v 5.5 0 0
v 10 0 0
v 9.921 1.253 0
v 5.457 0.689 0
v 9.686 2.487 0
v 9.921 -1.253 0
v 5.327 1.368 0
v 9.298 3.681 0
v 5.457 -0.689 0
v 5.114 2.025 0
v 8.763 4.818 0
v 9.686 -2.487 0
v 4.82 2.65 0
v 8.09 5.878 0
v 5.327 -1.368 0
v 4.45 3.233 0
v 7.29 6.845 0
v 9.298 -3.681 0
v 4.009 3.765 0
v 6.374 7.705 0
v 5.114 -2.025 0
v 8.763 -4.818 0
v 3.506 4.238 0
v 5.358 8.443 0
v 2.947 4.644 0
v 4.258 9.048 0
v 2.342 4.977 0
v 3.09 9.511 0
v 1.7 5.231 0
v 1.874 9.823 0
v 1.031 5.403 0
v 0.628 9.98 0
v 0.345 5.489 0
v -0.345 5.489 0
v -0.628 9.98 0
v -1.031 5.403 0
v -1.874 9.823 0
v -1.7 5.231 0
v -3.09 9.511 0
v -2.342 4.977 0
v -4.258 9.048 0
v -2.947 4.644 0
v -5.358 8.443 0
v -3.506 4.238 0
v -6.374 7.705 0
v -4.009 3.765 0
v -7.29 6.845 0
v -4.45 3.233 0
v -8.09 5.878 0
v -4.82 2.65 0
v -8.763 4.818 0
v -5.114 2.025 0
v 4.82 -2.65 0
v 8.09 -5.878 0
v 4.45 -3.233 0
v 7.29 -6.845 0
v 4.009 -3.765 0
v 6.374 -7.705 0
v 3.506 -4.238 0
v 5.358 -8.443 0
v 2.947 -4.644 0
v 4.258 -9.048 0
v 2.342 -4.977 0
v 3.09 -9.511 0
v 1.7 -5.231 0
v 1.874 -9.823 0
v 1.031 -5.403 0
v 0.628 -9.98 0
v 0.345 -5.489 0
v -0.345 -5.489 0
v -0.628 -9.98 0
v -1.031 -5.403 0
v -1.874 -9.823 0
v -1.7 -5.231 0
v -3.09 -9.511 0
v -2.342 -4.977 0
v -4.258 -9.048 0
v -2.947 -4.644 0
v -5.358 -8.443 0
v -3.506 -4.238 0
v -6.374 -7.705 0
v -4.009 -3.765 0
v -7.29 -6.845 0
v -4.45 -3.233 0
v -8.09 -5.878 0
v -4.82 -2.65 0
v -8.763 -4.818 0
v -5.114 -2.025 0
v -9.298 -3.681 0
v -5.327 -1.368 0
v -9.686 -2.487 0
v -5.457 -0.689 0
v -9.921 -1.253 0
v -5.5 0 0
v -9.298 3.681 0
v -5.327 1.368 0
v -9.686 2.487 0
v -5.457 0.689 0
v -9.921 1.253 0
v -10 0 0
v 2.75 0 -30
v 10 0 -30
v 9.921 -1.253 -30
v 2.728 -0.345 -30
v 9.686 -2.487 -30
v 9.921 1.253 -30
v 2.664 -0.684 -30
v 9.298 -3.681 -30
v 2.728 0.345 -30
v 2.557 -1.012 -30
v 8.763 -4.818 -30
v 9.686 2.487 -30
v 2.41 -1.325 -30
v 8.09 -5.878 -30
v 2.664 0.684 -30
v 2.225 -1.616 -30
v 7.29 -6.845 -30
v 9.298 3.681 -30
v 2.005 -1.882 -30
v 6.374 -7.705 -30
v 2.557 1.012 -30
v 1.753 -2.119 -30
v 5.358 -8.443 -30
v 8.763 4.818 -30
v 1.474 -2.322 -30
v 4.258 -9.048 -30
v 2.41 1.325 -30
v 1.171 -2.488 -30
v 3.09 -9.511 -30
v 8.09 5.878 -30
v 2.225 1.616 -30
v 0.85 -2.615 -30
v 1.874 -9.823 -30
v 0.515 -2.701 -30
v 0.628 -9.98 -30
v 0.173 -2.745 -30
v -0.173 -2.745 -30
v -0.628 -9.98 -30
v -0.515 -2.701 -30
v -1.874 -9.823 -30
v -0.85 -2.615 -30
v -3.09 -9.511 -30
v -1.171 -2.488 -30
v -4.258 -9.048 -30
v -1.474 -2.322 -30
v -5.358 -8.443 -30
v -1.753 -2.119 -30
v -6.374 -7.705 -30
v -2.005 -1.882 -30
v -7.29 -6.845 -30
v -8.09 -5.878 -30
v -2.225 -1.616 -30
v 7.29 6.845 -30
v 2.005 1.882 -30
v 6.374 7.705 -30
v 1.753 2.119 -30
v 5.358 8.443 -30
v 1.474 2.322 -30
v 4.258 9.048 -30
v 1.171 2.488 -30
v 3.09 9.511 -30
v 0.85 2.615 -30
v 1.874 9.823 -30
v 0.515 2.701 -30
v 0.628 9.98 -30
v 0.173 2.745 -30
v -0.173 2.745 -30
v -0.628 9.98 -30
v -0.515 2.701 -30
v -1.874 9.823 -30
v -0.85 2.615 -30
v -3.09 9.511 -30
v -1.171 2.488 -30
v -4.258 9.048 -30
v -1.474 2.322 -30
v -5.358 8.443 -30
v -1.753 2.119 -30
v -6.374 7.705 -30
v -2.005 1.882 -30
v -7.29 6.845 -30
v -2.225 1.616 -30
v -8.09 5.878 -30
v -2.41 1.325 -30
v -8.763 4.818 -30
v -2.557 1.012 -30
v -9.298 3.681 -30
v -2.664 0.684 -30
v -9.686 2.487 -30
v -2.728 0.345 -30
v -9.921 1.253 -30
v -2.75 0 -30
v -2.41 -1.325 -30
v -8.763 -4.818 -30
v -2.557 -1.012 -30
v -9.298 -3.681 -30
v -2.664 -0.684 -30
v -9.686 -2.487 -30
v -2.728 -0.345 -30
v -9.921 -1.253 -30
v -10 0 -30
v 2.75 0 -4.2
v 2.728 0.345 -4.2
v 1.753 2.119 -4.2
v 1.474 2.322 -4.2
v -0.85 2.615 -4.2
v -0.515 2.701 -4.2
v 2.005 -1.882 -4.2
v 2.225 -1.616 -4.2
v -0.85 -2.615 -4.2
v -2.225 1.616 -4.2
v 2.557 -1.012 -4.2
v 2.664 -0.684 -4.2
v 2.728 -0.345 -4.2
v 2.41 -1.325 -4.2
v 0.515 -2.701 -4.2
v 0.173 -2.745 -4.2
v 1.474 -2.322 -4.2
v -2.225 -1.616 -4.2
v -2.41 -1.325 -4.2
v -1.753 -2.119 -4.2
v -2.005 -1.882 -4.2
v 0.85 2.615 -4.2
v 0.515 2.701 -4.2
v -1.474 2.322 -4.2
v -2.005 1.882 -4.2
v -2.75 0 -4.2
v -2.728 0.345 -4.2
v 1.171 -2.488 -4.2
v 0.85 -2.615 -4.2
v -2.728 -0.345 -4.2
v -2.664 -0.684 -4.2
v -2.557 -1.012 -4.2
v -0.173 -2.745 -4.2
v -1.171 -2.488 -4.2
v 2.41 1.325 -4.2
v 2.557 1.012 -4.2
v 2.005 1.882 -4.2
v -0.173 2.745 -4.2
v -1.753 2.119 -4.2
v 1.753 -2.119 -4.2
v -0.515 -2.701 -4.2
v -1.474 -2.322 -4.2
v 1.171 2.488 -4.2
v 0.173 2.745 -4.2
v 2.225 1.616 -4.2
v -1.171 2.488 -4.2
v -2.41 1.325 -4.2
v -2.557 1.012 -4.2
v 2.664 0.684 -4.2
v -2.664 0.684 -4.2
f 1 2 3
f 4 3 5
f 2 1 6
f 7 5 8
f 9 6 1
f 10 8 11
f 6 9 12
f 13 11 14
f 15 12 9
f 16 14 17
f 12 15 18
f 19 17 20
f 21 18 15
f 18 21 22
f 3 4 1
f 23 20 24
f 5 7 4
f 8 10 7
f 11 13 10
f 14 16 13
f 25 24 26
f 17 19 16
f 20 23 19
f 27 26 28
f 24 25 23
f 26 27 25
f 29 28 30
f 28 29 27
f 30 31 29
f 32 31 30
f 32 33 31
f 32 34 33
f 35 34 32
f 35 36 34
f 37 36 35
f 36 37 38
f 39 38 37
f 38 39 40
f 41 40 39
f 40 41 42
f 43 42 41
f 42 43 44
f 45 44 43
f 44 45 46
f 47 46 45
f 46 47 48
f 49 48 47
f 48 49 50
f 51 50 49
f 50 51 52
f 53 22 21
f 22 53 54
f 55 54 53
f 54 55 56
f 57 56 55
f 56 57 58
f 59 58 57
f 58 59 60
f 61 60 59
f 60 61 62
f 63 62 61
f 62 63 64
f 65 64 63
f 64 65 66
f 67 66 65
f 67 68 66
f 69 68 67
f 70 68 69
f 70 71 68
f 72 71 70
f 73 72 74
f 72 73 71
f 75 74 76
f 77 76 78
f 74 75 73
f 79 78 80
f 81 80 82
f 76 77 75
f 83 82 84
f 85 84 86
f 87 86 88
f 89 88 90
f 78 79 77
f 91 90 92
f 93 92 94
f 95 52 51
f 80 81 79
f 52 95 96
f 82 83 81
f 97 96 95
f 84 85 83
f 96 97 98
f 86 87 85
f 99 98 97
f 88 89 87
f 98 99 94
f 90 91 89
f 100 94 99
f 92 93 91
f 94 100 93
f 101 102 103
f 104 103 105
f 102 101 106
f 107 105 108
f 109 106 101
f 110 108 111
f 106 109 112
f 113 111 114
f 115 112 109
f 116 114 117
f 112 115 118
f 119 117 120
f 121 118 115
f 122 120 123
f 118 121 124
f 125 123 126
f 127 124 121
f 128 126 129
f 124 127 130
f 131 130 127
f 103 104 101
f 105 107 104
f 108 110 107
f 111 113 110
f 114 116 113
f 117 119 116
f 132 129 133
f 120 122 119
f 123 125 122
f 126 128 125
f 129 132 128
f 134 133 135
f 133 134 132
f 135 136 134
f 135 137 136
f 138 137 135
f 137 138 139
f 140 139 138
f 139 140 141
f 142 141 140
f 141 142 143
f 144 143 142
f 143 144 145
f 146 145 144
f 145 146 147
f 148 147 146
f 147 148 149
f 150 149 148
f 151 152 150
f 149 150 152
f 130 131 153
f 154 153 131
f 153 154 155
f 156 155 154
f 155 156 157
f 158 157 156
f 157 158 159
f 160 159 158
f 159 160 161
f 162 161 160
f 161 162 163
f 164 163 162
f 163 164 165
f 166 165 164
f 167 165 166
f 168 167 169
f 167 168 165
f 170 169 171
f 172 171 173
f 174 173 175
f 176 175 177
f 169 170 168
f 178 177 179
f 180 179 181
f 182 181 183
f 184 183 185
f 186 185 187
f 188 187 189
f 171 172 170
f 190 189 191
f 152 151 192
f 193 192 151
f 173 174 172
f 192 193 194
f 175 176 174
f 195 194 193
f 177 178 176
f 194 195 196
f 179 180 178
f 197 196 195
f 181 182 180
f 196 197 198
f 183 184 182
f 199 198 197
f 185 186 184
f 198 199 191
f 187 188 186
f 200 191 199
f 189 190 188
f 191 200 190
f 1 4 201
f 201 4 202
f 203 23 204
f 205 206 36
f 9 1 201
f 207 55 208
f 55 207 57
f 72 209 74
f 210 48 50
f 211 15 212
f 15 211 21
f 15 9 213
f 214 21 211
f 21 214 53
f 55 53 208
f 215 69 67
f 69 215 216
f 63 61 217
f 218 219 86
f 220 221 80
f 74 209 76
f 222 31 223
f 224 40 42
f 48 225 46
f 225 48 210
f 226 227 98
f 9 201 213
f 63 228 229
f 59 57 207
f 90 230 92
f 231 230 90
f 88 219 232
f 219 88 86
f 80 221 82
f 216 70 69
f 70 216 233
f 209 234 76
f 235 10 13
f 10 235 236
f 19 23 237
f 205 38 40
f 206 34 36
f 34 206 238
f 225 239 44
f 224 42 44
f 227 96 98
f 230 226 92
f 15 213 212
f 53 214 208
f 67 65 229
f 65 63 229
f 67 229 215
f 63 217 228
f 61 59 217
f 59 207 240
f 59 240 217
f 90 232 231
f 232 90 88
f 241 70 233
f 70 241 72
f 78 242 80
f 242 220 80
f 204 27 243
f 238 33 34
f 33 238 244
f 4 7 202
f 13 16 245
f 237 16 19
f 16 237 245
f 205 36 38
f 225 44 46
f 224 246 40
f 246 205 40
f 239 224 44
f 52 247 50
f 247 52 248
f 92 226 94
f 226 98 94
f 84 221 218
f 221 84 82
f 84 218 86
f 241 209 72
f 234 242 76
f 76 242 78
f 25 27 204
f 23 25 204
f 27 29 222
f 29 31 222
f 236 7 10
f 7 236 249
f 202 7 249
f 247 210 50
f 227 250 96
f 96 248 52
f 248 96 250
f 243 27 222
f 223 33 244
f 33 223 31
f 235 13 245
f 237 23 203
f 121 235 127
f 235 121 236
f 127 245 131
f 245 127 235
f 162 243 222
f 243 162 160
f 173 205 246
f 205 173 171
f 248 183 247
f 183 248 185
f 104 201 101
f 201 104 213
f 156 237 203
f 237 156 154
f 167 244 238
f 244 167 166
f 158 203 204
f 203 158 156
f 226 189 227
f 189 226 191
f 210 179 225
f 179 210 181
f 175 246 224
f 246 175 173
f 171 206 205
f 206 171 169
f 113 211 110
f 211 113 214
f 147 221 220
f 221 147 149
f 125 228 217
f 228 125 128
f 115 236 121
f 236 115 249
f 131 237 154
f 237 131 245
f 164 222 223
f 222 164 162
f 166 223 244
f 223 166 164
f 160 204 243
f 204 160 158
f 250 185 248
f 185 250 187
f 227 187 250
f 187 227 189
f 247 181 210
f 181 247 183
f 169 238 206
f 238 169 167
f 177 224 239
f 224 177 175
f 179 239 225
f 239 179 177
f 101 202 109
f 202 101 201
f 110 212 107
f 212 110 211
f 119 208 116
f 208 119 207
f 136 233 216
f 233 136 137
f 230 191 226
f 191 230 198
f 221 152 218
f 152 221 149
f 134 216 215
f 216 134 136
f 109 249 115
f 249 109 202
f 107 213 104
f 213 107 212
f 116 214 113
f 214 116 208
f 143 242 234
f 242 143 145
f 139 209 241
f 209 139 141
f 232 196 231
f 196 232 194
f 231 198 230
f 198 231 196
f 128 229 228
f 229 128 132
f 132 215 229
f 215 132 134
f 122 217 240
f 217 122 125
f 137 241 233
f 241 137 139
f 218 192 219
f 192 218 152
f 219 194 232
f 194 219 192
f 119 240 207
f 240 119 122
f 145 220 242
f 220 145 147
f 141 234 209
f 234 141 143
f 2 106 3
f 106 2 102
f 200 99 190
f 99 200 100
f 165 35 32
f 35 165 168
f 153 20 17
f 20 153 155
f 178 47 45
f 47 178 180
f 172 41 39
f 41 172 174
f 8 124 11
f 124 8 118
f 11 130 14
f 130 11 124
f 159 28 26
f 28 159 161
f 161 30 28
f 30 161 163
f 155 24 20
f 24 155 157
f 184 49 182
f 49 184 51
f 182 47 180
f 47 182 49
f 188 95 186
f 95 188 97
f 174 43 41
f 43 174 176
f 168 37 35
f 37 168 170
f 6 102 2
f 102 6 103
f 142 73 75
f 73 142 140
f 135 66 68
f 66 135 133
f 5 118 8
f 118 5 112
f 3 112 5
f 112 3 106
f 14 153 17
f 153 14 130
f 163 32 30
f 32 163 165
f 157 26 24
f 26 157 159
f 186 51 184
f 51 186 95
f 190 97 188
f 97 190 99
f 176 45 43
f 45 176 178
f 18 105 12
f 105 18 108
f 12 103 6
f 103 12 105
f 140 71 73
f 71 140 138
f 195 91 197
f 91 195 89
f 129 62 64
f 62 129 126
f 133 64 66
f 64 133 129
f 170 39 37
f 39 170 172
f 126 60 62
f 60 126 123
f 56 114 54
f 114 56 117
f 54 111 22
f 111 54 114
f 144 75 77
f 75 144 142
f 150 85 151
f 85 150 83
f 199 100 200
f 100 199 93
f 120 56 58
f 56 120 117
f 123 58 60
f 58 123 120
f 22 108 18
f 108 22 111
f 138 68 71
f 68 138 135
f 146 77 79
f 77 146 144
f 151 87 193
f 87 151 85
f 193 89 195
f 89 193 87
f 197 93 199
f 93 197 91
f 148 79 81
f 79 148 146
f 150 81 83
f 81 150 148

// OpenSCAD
$fn = 50;


difference() {
	union() {
		translate(v = [0, 0, -30.0000000000]) {
			cylinder(h = 30, r = 10.0000000000);
		}
		cylinder(h = 0, r = 19.0000000000);
	}
	union() {
		translate(v = [0, 0, 0]) {
			rotate(a = [0, 0, 0]) {
				difference() {
					union() {
						#translate(v = [0, 0, -30.0000000000]) {
							cylinder(h = 30, r = 2.2500000000);
						}
						#translate(v = [0, 0, -4.2000000000]) {
							cylinder(h = 4.2000000000, r1 = 2.7500000000, r2 = 5.5000000000);
						}
						#translate(v = [0, 0, -30.0000000000]) {
							cylinder(h = 30, r = 2.7500000000);
						}
						#translate(v = [0, 0, -30.0000000000]) {
							cylinder(h = 30, r = 2.2500000000);
						}
					}
					union();
				}
			}
		}
	}
}
